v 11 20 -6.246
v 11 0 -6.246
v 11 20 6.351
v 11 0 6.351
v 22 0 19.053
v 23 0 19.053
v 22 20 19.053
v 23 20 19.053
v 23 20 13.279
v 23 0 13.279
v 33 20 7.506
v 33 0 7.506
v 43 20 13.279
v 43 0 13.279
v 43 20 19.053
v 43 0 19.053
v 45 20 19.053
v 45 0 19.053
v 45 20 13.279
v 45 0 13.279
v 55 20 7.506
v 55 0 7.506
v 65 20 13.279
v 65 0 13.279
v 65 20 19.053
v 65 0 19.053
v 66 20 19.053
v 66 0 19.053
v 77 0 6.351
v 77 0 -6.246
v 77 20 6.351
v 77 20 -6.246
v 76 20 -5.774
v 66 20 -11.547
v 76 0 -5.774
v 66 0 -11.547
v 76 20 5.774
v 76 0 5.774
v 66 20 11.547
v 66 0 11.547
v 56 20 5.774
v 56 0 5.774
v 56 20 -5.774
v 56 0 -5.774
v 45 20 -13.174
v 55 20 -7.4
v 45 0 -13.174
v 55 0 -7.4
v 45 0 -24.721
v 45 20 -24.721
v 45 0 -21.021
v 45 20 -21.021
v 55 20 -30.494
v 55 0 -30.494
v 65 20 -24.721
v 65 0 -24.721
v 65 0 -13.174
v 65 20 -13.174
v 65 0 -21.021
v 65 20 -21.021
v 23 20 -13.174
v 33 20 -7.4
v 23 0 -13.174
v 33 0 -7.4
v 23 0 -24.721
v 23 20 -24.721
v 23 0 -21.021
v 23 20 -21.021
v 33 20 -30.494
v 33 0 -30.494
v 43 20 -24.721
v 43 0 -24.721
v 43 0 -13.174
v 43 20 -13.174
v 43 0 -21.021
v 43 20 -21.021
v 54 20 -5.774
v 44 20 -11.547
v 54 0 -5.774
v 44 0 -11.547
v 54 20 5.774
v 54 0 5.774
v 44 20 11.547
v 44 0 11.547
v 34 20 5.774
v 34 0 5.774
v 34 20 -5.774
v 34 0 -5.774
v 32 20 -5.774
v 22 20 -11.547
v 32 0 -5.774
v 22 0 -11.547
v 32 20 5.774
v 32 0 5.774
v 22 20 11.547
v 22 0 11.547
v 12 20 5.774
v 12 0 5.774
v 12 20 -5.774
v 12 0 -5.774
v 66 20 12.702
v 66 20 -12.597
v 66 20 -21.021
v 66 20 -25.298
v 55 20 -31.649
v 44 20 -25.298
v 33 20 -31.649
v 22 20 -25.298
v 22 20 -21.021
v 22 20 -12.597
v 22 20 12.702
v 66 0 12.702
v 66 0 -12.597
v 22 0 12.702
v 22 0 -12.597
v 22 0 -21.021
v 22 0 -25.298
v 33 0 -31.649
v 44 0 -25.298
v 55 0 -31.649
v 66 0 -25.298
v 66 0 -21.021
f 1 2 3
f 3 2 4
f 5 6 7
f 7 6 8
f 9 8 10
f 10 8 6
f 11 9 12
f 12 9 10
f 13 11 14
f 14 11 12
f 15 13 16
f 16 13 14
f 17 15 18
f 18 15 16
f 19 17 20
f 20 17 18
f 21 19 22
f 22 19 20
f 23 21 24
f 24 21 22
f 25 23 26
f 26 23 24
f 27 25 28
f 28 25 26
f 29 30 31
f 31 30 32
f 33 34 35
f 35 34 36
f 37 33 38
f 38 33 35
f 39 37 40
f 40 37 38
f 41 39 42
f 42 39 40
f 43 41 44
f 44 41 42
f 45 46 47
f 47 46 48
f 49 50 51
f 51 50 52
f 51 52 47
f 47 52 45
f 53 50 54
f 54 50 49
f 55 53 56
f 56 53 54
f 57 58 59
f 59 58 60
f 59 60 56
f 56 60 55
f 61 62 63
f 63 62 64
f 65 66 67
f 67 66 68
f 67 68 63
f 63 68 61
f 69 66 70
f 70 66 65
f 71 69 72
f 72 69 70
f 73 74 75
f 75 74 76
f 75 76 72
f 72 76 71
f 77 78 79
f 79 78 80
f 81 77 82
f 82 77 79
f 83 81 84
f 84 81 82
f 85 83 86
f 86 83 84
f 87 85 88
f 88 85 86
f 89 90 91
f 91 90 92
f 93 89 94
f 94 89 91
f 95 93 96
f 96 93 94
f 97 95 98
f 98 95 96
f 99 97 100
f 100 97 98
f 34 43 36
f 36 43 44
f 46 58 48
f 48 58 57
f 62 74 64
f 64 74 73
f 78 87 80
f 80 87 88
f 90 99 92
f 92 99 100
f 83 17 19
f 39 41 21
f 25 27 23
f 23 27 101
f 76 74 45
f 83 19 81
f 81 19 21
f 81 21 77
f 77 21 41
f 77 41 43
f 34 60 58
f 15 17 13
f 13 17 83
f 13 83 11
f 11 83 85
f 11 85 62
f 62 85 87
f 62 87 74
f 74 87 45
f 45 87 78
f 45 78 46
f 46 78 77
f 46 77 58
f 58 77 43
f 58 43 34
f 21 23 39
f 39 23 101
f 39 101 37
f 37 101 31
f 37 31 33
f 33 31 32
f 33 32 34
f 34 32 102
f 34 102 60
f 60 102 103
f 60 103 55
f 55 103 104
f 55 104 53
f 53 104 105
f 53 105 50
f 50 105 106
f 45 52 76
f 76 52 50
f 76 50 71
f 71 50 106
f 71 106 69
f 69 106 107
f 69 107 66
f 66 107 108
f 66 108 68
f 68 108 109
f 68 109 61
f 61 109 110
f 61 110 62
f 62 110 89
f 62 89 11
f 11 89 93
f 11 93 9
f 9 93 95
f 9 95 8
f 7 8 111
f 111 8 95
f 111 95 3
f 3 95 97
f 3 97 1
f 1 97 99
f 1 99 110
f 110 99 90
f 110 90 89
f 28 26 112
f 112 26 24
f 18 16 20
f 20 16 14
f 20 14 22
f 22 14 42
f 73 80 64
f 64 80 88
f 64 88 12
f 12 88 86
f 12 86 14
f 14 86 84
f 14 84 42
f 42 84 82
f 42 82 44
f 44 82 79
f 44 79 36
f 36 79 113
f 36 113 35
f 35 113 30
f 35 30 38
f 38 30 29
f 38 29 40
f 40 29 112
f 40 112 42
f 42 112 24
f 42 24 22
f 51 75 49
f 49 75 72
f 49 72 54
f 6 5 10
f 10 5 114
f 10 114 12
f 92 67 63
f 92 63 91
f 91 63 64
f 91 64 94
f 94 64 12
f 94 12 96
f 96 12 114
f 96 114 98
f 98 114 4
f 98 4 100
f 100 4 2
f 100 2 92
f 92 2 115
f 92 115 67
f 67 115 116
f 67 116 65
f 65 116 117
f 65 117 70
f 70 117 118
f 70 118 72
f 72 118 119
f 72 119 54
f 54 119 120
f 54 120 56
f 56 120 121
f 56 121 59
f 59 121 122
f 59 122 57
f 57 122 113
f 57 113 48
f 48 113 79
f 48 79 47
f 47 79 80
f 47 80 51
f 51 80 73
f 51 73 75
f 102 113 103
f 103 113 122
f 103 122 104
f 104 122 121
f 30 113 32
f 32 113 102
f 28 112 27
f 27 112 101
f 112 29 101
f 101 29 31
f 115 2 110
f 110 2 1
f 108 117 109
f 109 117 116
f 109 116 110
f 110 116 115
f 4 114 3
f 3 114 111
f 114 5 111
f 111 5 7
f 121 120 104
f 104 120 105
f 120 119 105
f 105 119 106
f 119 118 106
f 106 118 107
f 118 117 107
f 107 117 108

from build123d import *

# Parameters (mm, degrees)
BOSS_EXTRUDE2_DEPTH = 20
CUT_EXTRUDE1_DEPTH  = 21
CUT_EXTRUDE2_DEPTH  = 21


with BuildPart() as part:
    # Sketch1 → Boss-Extrude2 (new body)
    with BuildSketch(Plane(origin=(0, 0, 0), x_dir=(1, 0, 0), z_dir=(0, 1, 0))):
        Polygon((21, -13.279056191), (21, -19.052558883), (23, -19.052558883), (23, -13.279056191), (33, -7.505553499), (43, -13.279056191), (43, -19.052558883), (45, -19.052558883), (45, -13.279056191), (55, -7.505553499), (65, -13.279056191), (65, -19.052558883), (67, -19.052558883), (67, -13.279056191), (77, -7.505553499), (77, 7.400435733), (67, 13.173938425), (67, 24.720943809), (77, 30.494446501), (77, 38), (76, 38), (76, 32.226497308), (66, 26.452994616), (56, 32.226497308), (56, 38), (54, 38), (54, 32.226497308), (44, 26.452994616), (34, 32.226497308), (34, 38), (32, 38), (32, 32.226497308), (22, 26.452994616), (12, 32.226497308), (12, 38), (11, 38), (11, 30.494446501), (21, 24.720943809), (21, 13.173938425), (11, 7.400435733), (11, -7.505553499), align=None)
        Polygon((12, 5.773502692), (22, 11.547005384), (32, 5.773502692), (32, -5.773502692), (22, -11.547005384), (12, -5.773502692), align=None, mode=Mode.SUBTRACT)
        Polygon((34, 5.773502692), (44, 11.547005384), (54, 5.773502692), (54, -5.773502692), (44, -11.547005384), (34, -5.773502692), align=None, mode=Mode.SUBTRACT)
        Polygon((56, 5.773502692), (66, 11.547005384), (76, 5.773502692), (76, -5.773502692), (66, -11.547005384), (56, -5.773502692), align=None, mode=Mode.SUBTRACT)
        Polygon((43, 13.173938425), (33, 7.400435733), (23, 13.173938425), (23, 24.720943809), (33, 30.494446501), (43, 24.720943809), align=None, mode=Mode.SUBTRACT)
        Polygon((65, 13.173938425), (55, 7.400435733), (45, 13.173938425), (45, 24.720943809), (55, 30.494446501), (65, 24.720943809), align=None, mode=Mode.SUBTRACT)
    extrude(amount=BOSS_EXTRUDE2_DEPTH)

    # Sketch2 → Cut-Extrude1 (cut, through all)
    with BuildSketch(Plane(origin=(0, 20, 0), x_dir=(1, 0, 0), z_dir=(0, 1, 0))):
        Polygon((11, 6.245735195), (22, 12.596588156), (22, 25.298294078), (11, 31.649147039), (2.295872016, -19.052558883), (22, -19.052558883), (22, -12.701705922), (11, -6.350852961), align=None)
        Polygon((77, 31.649147039), (85.704127984, -19.052558883), (66, -19.052558883), (66, -12.701705922), (77, -6.350852961), (77, 6.245735195), (66, 12.596588156), (66, 25.298294078), align=None)
    extrude(amount=-CUT_EXTRUDE1_DEPTH, mode=Mode.SUBTRACT)

    # Sketch4 → Cut-Extrude2 (cut, through all)
    with BuildSketch(Plane(origin=(0, 20, 0), x_dir=(1, 0, 0), z_dir=(0, 1, 0))):
        Polygon((22, 25.298294078), (33, 31.649147039), (44, 25.298294078), (55, 31.649147039), (66, 25.298294078), (77, 31.649147039), (77, 38), (11, 38), (11, 31.649147039), align=None)
    extrude(amount=-CUT_EXTRUDE2_DEPTH, mode=Mode.SUBTRACT)


solid = part.part
